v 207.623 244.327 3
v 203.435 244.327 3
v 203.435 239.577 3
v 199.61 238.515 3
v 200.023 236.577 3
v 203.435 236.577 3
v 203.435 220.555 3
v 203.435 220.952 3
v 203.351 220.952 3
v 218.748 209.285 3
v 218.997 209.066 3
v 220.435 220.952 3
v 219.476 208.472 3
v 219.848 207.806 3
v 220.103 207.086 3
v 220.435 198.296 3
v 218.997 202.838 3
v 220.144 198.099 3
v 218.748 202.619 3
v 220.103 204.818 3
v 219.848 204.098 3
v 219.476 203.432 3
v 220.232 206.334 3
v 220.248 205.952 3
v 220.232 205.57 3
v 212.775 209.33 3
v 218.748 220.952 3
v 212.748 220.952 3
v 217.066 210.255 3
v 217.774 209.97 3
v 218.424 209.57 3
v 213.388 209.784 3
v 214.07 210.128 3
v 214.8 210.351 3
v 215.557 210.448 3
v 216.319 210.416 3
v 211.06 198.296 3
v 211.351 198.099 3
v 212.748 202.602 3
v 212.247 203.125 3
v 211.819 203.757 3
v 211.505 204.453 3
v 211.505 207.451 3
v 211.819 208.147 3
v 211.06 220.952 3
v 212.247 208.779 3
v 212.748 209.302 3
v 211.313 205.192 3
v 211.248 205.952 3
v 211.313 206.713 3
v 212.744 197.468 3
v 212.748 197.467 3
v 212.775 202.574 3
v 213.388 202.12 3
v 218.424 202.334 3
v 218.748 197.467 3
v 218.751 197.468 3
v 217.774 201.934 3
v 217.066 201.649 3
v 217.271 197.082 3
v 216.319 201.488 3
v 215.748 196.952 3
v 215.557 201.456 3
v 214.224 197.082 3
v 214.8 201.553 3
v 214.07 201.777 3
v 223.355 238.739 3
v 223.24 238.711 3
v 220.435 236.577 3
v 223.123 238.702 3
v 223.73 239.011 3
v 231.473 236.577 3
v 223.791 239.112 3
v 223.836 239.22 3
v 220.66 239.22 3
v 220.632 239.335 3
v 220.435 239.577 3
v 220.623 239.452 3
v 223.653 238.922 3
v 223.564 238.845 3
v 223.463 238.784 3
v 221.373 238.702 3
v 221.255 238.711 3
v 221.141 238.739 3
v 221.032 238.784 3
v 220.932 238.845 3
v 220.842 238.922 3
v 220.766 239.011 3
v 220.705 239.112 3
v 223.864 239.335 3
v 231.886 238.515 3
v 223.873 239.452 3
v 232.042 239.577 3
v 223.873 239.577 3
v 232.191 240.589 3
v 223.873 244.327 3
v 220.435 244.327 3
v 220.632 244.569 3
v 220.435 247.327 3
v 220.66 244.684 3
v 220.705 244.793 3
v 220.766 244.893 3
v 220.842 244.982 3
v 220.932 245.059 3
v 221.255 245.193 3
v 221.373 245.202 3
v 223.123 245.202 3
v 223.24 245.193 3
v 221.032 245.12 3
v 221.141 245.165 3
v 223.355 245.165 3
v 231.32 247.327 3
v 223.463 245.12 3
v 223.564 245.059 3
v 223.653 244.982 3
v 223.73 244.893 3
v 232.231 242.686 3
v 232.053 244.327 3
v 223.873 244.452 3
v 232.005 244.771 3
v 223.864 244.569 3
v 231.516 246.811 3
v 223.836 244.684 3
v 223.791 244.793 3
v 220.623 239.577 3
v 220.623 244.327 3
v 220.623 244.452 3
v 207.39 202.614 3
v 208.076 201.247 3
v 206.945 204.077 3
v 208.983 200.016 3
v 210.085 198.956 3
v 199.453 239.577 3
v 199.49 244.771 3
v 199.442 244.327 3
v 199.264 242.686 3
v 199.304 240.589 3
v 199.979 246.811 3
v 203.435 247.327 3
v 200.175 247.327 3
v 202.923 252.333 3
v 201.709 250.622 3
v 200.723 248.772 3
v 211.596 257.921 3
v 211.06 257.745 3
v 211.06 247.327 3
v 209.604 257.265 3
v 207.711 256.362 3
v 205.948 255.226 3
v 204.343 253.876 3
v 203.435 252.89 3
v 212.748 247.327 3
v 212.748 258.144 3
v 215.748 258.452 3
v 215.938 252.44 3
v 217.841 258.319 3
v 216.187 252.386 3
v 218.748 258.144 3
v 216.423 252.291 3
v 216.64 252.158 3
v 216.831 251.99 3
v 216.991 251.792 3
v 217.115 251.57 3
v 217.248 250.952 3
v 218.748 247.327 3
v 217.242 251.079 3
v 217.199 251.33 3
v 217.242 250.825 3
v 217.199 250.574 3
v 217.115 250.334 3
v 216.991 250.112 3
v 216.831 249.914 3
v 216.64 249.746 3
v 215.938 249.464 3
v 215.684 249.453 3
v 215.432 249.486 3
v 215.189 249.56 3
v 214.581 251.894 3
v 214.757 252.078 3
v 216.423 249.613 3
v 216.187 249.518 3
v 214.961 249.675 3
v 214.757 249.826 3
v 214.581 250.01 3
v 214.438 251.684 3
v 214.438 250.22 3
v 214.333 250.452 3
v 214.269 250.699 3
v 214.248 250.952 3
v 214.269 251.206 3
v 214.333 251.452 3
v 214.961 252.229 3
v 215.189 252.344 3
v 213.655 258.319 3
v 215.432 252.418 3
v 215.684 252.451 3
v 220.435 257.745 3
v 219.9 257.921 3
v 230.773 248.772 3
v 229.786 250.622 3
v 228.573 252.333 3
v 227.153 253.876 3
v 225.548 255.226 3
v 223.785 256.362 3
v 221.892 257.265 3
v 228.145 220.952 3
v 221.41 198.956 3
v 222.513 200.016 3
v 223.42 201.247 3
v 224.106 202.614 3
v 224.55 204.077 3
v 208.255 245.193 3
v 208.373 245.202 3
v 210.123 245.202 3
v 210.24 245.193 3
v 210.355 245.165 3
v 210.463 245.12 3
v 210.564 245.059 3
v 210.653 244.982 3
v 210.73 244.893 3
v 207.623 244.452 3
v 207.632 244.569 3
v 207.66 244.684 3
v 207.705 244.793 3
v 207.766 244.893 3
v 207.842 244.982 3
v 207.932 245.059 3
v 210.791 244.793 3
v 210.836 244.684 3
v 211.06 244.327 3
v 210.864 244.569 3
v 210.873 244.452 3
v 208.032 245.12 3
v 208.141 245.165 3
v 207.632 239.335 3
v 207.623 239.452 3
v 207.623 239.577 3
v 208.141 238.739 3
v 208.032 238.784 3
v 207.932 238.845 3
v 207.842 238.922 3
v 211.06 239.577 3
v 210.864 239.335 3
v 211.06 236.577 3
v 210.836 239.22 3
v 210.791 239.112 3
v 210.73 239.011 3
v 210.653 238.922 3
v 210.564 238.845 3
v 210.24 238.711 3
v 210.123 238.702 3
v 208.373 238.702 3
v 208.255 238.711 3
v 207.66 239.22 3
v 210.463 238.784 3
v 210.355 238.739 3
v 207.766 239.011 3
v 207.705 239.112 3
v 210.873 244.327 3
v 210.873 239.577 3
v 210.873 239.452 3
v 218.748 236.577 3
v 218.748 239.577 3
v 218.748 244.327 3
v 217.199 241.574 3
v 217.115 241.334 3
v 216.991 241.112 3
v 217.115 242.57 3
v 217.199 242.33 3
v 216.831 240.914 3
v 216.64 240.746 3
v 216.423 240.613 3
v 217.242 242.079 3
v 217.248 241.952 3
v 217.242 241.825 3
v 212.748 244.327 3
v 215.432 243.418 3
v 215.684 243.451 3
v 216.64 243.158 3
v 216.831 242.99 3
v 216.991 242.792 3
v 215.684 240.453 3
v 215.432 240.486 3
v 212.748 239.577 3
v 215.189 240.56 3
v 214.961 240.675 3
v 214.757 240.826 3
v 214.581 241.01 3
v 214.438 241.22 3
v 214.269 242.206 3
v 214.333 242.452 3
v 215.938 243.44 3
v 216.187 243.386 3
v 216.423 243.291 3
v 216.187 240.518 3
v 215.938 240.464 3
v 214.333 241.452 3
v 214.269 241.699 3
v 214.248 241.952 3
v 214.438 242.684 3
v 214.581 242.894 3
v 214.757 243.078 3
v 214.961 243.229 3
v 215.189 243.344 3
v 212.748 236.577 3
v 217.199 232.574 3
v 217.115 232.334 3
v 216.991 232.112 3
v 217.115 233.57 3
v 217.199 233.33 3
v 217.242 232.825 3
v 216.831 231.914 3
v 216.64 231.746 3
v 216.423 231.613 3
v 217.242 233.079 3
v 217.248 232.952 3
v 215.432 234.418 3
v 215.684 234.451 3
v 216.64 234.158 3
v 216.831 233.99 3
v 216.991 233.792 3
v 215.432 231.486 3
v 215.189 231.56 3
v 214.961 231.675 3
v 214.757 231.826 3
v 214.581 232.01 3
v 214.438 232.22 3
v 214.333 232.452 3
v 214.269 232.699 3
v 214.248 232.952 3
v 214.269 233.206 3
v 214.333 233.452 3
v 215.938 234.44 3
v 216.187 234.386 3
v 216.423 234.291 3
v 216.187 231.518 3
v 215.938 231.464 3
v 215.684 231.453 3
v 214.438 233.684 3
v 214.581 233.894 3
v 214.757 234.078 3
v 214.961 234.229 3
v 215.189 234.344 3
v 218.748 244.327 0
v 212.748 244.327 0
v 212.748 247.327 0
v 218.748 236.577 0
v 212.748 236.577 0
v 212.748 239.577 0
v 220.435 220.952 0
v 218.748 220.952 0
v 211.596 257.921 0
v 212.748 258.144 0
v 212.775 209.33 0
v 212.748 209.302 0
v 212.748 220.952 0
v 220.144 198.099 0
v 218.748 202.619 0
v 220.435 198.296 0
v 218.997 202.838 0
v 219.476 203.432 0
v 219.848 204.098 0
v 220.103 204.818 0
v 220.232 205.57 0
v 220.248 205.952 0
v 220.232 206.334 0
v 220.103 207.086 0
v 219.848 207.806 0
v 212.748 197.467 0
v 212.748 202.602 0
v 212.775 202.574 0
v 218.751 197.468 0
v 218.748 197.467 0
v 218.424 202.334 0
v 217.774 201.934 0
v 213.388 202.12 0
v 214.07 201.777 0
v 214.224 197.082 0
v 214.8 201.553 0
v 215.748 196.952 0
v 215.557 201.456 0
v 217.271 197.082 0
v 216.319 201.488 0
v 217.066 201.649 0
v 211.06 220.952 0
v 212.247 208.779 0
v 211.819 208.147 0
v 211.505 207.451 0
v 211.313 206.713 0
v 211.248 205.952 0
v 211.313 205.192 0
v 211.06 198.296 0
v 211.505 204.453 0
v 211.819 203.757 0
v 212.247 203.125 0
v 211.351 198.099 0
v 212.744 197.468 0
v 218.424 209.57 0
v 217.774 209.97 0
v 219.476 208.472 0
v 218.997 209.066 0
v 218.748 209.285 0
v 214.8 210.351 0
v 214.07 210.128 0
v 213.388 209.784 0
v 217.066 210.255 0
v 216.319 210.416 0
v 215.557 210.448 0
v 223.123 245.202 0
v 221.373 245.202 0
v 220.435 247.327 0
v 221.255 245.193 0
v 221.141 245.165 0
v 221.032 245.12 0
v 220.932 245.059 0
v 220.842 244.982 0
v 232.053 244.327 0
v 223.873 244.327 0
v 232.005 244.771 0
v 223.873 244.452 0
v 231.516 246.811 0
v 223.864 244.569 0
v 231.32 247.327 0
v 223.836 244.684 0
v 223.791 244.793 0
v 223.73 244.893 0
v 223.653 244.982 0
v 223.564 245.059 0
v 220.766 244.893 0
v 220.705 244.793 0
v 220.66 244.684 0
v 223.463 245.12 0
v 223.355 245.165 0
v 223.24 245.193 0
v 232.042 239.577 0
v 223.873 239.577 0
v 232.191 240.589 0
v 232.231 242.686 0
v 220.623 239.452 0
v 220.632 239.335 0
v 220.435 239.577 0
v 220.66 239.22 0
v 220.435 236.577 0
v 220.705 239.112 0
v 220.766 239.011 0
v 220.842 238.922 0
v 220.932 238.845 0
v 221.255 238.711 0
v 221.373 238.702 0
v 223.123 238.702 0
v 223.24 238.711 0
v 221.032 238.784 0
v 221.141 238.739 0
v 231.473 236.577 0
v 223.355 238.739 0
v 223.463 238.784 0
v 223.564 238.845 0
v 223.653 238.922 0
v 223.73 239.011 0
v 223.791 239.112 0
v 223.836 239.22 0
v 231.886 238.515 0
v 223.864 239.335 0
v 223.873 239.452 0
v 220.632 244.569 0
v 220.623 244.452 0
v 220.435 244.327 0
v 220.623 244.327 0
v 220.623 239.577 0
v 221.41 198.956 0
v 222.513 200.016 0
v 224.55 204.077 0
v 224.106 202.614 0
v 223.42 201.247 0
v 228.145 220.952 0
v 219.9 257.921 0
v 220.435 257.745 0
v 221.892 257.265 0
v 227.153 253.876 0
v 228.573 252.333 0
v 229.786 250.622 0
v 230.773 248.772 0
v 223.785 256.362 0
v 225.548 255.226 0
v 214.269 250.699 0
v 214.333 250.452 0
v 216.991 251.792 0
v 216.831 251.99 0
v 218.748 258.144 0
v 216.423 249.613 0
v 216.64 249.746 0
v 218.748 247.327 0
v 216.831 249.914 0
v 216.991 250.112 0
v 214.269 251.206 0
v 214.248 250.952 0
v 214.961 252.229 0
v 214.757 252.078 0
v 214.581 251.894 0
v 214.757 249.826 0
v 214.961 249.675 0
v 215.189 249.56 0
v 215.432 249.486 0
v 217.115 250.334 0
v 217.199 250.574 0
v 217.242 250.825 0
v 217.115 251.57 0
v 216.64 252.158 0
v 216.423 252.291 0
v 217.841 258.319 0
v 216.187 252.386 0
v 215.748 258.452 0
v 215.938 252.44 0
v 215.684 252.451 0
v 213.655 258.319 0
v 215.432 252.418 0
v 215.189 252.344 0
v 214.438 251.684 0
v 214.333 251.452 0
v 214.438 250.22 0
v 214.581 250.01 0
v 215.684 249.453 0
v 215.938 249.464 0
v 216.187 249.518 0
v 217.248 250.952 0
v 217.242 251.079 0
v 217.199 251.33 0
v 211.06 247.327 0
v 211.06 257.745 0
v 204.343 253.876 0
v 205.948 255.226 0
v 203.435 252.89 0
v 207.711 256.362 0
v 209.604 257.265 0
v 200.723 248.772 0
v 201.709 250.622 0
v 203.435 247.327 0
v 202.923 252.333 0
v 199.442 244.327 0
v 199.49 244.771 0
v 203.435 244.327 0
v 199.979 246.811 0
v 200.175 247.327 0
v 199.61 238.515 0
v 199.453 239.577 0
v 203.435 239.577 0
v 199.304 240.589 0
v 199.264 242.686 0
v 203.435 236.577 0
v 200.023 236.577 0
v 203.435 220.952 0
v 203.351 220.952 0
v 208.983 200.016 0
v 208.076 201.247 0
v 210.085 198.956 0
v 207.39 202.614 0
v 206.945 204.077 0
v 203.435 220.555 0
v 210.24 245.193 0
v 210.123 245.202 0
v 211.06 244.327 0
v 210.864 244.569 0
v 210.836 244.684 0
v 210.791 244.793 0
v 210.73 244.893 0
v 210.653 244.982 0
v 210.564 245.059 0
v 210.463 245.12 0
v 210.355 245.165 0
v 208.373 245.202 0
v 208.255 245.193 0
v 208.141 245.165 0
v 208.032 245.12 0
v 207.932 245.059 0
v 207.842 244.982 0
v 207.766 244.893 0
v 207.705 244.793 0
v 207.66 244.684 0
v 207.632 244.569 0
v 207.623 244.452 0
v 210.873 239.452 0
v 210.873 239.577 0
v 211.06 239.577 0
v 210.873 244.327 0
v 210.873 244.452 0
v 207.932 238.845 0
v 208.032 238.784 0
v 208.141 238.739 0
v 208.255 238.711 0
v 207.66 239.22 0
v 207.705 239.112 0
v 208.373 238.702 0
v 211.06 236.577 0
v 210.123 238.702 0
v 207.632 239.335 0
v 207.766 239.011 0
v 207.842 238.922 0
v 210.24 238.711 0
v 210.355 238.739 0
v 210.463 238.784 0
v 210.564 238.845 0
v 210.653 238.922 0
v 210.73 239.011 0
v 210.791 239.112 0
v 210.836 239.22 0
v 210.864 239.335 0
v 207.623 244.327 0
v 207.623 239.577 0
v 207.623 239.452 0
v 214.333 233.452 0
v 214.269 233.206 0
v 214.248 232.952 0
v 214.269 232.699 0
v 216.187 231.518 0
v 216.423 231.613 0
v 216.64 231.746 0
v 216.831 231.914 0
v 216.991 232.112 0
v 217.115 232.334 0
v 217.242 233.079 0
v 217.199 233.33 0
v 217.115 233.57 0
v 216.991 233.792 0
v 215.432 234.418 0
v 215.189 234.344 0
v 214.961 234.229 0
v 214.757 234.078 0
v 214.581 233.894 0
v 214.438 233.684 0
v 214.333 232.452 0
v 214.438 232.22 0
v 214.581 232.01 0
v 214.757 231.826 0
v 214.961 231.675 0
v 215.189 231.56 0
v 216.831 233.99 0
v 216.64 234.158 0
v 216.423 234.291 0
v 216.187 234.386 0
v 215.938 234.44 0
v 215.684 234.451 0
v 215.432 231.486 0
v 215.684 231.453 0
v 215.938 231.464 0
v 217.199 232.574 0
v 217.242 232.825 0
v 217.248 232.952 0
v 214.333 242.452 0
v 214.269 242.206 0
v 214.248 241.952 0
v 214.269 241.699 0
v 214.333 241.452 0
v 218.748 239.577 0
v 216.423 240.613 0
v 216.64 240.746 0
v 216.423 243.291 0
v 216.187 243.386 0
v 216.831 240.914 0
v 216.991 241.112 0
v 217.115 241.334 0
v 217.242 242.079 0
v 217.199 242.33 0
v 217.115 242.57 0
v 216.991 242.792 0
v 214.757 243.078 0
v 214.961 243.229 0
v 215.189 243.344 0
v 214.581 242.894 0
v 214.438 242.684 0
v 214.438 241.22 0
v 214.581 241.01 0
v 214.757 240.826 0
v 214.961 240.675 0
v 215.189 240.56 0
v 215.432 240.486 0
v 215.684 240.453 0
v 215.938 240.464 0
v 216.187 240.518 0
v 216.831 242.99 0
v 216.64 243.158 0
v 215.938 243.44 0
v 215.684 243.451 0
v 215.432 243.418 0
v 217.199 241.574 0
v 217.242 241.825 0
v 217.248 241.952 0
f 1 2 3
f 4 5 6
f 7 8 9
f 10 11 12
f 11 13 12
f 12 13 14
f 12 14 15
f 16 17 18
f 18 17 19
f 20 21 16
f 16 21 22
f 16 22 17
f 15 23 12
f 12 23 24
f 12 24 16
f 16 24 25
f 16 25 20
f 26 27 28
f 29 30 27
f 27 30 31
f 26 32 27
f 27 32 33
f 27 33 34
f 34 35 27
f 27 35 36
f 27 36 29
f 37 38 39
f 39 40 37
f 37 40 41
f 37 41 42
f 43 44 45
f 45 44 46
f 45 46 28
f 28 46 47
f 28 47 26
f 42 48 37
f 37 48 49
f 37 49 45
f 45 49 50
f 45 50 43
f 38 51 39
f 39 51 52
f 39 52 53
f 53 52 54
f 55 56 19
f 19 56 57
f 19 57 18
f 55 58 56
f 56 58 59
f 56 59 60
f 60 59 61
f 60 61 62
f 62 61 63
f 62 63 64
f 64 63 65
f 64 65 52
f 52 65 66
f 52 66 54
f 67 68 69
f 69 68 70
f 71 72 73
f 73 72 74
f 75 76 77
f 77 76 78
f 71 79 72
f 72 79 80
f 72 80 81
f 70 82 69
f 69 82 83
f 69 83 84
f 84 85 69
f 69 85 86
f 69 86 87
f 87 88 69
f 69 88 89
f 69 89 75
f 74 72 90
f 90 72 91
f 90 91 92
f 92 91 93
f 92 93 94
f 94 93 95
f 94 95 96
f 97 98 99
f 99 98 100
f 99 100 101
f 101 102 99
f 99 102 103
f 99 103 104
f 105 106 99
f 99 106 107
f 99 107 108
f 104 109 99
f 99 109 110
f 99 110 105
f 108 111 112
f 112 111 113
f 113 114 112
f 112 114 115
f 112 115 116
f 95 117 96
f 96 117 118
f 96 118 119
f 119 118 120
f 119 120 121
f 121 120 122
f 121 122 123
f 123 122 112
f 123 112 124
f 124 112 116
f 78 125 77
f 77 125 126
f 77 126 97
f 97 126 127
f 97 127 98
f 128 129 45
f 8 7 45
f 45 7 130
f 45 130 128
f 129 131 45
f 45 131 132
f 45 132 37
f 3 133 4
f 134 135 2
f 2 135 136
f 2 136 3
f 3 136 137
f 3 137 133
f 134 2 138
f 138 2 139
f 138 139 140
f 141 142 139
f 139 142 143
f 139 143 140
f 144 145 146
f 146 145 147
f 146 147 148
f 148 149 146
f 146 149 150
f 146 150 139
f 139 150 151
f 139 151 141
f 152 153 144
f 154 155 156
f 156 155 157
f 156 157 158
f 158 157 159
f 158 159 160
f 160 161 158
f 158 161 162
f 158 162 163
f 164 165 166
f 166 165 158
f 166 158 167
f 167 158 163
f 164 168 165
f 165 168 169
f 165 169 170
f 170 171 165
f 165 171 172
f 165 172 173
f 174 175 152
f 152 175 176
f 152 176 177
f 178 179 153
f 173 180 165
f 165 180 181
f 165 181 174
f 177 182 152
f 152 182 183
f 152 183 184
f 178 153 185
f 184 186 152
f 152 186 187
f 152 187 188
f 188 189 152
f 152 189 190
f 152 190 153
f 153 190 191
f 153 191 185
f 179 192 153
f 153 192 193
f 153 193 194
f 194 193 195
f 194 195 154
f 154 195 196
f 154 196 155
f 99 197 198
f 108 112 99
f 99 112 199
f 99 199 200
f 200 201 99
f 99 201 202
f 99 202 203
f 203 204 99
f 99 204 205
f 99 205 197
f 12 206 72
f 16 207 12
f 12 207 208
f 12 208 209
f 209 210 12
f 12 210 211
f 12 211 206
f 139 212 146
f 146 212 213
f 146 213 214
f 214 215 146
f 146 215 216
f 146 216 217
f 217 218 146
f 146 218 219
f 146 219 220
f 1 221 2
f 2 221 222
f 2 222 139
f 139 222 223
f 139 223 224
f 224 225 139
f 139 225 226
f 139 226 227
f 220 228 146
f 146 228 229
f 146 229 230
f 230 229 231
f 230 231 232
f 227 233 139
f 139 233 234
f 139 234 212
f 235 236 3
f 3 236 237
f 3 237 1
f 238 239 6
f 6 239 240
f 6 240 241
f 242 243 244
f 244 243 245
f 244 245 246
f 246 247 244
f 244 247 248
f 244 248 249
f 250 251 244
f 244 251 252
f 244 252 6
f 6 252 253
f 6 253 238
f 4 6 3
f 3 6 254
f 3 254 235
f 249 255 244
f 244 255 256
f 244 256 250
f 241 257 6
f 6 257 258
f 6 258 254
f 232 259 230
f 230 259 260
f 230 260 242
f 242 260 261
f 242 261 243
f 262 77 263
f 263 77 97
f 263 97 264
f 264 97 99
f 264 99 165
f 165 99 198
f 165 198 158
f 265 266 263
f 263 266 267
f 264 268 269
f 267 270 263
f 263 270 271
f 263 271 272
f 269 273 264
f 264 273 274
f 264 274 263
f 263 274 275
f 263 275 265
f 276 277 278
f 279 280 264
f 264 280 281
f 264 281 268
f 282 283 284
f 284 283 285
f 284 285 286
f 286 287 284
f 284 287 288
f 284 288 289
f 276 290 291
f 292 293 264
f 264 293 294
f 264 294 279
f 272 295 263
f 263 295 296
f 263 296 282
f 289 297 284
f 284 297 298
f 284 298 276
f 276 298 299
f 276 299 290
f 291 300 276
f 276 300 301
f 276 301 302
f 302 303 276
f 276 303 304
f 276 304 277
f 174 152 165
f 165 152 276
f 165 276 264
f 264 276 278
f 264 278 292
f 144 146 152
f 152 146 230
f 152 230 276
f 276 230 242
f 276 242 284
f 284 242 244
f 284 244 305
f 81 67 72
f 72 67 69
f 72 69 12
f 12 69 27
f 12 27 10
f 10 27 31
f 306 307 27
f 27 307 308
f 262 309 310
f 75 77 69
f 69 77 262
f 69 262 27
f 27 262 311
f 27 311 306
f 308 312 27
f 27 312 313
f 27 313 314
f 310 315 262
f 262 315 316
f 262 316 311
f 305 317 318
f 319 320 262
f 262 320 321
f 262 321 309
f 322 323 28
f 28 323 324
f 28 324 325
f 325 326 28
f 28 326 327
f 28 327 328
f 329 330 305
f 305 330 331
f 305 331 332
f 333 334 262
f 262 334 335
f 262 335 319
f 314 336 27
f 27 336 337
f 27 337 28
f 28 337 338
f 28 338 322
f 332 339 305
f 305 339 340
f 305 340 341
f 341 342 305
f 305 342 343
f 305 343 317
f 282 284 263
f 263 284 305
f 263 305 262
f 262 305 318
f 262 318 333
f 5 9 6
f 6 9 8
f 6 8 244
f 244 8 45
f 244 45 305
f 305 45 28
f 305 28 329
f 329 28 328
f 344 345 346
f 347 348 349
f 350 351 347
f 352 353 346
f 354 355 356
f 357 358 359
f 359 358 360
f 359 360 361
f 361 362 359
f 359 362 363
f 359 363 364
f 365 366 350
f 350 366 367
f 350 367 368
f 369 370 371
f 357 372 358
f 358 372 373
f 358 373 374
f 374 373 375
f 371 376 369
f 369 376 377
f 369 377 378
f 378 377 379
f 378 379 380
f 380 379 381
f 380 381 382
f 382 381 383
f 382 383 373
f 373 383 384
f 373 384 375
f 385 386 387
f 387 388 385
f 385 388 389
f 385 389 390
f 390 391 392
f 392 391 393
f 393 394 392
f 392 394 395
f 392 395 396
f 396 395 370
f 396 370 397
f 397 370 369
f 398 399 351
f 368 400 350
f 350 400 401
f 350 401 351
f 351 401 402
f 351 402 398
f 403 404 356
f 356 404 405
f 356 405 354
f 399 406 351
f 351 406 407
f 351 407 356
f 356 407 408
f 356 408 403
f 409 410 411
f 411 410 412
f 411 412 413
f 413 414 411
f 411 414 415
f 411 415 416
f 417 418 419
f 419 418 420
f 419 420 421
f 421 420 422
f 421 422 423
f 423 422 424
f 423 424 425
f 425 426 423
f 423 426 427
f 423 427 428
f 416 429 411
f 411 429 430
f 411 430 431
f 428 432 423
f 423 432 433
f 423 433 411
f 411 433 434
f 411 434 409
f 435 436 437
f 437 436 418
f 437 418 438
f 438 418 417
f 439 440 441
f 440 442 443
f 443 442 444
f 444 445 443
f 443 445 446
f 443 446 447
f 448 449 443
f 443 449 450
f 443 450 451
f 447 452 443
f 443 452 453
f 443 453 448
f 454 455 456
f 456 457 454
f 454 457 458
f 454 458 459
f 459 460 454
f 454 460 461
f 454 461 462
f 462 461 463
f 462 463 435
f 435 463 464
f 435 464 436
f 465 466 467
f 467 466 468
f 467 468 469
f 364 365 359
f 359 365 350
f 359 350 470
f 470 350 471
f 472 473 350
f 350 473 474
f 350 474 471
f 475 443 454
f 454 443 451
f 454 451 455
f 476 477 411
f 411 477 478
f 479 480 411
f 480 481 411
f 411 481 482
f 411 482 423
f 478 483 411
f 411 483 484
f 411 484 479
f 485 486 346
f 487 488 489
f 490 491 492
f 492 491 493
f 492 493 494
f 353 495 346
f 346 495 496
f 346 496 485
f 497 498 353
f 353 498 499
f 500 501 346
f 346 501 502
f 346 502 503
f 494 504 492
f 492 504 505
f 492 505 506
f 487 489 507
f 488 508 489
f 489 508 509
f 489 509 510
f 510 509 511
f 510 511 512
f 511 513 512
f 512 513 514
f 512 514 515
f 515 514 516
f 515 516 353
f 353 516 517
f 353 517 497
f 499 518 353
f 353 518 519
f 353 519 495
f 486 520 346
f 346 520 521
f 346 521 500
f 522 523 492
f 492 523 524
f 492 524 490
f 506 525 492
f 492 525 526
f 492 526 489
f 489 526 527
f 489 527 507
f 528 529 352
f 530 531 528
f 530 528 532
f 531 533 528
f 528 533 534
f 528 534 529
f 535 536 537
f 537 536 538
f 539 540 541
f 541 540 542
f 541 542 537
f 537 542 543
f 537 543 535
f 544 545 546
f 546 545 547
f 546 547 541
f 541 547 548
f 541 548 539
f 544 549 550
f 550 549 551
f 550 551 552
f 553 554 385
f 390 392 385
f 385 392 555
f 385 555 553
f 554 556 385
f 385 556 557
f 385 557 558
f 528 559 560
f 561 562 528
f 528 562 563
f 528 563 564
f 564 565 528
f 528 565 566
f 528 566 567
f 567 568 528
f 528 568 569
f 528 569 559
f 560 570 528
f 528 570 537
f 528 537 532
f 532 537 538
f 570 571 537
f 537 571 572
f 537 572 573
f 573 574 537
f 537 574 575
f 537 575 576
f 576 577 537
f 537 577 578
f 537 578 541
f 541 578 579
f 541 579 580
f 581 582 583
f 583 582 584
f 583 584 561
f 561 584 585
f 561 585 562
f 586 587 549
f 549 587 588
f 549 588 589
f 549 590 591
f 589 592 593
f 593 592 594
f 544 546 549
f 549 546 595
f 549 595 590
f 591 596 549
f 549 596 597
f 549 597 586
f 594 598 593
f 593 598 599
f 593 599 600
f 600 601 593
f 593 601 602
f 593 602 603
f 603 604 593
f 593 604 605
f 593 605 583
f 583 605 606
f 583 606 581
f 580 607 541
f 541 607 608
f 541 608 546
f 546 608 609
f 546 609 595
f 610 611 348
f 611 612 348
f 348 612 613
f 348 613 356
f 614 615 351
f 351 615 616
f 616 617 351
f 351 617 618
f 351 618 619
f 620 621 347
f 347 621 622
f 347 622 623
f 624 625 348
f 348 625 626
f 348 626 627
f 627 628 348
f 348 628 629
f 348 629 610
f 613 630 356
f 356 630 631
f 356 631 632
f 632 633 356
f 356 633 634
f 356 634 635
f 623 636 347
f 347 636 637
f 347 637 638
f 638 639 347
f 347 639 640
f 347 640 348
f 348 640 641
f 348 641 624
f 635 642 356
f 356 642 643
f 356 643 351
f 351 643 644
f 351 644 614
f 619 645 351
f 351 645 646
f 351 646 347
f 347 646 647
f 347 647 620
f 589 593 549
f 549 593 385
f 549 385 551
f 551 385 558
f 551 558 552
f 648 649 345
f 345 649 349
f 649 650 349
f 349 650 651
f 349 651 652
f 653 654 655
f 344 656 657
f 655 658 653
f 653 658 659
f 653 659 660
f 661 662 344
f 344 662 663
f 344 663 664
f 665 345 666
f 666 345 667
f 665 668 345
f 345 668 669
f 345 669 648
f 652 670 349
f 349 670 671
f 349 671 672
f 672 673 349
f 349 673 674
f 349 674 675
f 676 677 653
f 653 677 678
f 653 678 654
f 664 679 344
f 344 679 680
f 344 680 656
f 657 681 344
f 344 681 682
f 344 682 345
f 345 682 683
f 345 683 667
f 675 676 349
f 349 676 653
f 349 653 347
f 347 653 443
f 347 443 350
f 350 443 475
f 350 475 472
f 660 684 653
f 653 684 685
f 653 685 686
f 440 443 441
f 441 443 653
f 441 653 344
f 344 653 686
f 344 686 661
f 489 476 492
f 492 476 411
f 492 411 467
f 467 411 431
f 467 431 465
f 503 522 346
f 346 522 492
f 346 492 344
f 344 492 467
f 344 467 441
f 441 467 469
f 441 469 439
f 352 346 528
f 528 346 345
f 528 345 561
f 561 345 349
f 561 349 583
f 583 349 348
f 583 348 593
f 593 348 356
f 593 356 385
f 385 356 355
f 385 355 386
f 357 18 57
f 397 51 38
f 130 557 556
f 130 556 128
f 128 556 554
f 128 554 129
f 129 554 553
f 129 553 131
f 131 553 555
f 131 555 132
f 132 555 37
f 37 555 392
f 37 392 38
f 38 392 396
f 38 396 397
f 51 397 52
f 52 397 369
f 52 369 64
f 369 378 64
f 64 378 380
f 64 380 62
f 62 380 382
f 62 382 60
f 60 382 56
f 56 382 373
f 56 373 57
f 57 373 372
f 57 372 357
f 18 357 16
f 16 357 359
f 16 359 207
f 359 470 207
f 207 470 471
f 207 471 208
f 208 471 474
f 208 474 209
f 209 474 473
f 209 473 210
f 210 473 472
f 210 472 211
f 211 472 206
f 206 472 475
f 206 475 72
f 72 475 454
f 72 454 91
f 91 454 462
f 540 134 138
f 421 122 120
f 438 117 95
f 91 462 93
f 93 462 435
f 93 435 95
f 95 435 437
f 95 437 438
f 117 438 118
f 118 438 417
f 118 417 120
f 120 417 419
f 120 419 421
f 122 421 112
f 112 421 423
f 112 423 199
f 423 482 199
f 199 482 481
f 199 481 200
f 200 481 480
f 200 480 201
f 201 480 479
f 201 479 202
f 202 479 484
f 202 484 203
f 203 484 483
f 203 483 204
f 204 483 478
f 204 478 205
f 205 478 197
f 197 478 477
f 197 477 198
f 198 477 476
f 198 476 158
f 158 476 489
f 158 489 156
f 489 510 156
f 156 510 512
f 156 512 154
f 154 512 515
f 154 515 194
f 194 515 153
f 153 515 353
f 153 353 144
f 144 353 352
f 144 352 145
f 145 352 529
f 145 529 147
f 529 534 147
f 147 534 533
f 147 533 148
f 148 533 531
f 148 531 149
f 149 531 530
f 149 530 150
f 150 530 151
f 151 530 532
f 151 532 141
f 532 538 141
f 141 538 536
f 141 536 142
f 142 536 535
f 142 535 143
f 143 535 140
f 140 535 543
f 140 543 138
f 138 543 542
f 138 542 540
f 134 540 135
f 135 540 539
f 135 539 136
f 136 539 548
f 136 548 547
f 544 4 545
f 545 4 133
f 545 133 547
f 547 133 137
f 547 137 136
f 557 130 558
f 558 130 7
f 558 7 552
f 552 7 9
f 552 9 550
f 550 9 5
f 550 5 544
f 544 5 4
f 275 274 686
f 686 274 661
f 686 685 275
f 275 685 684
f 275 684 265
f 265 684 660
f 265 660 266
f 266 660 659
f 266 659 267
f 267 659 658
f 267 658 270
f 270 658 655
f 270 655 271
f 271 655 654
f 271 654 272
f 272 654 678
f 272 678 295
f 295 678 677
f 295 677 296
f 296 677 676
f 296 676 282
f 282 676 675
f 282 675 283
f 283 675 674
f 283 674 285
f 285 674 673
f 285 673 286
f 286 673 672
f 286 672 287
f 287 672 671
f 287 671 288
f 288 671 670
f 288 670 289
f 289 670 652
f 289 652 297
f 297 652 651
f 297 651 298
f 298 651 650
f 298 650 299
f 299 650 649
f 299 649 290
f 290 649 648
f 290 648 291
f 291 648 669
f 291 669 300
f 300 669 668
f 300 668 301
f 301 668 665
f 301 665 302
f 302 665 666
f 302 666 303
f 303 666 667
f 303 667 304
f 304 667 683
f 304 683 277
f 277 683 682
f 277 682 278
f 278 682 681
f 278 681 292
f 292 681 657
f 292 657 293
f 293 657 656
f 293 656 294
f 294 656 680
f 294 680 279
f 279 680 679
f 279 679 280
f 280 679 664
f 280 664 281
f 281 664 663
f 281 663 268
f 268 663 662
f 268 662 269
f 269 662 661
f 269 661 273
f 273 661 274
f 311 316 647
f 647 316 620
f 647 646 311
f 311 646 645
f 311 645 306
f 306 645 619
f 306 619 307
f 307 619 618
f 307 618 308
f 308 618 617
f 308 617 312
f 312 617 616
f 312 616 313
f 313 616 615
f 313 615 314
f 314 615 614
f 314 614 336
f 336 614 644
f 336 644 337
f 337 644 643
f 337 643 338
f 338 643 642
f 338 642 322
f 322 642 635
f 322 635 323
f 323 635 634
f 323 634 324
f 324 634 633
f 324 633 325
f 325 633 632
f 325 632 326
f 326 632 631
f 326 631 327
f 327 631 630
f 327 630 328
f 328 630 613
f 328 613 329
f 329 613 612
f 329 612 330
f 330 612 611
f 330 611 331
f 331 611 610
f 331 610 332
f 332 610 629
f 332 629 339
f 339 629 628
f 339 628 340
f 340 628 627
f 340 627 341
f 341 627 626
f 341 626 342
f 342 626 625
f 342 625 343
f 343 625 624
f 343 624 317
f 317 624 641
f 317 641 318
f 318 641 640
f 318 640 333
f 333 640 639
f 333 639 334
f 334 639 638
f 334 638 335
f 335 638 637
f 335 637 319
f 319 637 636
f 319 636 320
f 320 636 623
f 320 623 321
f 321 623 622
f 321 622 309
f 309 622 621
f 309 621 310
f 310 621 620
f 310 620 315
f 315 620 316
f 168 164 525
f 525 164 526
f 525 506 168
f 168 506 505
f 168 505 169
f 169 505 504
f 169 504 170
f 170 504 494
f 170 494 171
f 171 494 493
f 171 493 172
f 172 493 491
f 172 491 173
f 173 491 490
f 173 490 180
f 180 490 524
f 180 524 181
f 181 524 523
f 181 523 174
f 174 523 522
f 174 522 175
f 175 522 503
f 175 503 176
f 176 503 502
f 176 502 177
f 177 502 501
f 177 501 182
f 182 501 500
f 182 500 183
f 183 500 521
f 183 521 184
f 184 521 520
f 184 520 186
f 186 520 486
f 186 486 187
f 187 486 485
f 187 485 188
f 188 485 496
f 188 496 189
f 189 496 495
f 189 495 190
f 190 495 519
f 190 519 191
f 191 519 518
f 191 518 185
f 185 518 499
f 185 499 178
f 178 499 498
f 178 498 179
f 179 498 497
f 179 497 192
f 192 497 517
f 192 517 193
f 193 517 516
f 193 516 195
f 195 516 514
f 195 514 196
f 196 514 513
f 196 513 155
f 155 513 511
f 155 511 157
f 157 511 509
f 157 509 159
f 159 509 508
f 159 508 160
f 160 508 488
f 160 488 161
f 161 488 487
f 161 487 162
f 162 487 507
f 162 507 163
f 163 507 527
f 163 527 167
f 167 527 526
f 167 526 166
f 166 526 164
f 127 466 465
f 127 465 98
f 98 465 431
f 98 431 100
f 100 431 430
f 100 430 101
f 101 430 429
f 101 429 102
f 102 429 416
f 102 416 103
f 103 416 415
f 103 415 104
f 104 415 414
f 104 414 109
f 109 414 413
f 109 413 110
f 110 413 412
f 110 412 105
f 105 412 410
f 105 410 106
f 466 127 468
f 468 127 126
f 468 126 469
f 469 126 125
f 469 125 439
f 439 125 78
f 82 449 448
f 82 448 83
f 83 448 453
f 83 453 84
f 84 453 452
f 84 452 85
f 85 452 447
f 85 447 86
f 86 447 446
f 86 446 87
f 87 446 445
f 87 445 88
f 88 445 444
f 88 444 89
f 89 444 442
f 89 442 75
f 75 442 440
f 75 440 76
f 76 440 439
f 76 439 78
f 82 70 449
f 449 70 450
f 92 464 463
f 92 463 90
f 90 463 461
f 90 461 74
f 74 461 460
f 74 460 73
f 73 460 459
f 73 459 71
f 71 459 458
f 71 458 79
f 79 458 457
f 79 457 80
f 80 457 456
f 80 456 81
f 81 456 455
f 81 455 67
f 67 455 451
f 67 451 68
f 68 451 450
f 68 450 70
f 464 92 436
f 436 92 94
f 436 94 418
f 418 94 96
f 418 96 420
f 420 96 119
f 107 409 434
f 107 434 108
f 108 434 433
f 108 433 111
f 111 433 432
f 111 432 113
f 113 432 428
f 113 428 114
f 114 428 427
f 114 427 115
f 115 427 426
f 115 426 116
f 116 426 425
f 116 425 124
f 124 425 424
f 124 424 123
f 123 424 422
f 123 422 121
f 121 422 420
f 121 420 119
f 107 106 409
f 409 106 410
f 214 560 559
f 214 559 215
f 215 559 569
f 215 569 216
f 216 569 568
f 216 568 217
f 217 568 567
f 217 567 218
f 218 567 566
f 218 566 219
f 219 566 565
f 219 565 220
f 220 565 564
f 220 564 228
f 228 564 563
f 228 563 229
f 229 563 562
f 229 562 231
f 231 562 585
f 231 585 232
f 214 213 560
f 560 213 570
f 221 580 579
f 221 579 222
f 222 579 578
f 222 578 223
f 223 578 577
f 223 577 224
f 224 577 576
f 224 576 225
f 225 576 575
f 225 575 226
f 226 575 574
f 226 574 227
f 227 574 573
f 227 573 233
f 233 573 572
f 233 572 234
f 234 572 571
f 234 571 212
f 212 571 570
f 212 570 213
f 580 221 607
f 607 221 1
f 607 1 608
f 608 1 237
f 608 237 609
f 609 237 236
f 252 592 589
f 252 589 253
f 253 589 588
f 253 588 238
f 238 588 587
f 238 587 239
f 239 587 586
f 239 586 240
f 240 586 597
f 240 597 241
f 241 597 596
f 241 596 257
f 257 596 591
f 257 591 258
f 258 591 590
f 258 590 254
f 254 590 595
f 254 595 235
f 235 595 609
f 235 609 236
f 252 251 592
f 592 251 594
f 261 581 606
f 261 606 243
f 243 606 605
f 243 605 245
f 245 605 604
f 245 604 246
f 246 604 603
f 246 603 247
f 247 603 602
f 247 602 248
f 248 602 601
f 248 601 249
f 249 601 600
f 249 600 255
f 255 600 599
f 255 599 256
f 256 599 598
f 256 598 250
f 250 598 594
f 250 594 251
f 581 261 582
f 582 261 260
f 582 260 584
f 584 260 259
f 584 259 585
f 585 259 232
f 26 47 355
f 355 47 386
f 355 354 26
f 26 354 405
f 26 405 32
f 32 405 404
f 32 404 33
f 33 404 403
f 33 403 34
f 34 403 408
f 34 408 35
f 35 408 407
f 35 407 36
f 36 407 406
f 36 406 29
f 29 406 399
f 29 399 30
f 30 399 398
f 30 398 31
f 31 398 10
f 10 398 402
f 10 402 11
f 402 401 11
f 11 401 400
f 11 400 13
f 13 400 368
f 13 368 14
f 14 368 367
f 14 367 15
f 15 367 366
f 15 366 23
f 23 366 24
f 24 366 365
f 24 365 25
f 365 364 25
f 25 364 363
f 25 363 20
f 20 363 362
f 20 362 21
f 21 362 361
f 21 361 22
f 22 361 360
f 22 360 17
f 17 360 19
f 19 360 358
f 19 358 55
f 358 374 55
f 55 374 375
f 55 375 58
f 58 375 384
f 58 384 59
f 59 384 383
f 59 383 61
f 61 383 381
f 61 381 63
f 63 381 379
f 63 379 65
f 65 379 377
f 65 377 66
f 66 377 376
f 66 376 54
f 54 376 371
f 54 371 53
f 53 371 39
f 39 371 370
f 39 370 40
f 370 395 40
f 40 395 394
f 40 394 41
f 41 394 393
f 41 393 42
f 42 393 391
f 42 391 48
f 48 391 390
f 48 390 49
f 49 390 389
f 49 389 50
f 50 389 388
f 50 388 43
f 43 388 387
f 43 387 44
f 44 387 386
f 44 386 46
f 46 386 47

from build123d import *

# Parameters (mm, degrees)
MODEL_R                 = 1.5
MODEL_R_2               = 4.5
SALIENTE_EXTRUIR1_DEPTH = 3


with BuildPart() as part:
    # Model → Saliente-Extruir1 (new body)
    with BuildSketch(Plane.XY):
        with BuildLine():
            Line((206.945286968, 204.077019993), (199.609852846, 238.514519993))
            ThreePointArc((199.609852846, 238.514519993), (215.747807914, 258.452019993), (231.885762981, 238.514519993))
            Line((231.885762981, 238.514519993), (224.550328859, 204.077019993))
            ThreePointArc((224.550328859, 204.077019993), (215.747807914, 196.952019993), (206.945286968, 204.077019993))
        make_face()
        with Locations((215.747807914, 241.952019993)):
            Circle(MODEL_R, mode=Mode.SUBTRACT)
        with Locations((215.747807914, 232.952019993)):
            Circle(MODEL_R, mode=Mode.SUBTRACT)
        with Locations((215.747807914, 250.952019993)):
            Circle(MODEL_R, mode=Mode.SUBTRACT)
        with Locations((215.747807914, 205.952019993)):
            Circle(MODEL_R_2, mode=Mode.SUBTRACT)
        with BuildLine():
            Line((223.122807913, 245.202019993), (221.372807913, 245.202019993))
            ThreePointArc((221.372807913, 245.202019993), (220.842477828, 244.982350079), (220.622807913, 244.452019993))
            Line((220.622807913, 244.452019993), (220.622807913, 239.452019993))
            ThreePointArc((220.622807913, 239.452019993), (220.842477828, 238.921689907), (221.372807913, 238.702019993))
            Line((221.372807913, 238.702019993), (223.122807913, 238.702019993))
            ThreePointArc((223.122807913, 238.702019993), (223.653137999, 238.921689907), (223.872807913, 239.452019993))
            Line((223.872807913, 239.452019993), (223.872807913, 244.452019993))
            ThreePointArc((223.872807913, 244.452019993), (223.653137999, 244.982350079), (223.122807913, 245.202019993))
        make_face(mode=Mode.SUBTRACT)
        with BuildLine():
            Line((208.372807913, 245.202019993), (210.122807913, 245.202019993))
            ThreePointArc((210.122807913, 245.202019993), (210.653137999, 244.982350079), (210.872807913, 244.452019993))
            Line((210.872807913, 244.452019993), (210.872807913, 239.452019993))
            ThreePointArc((210.872807913, 239.452019993), (210.653137999, 238.921689907), (210.122807913, 238.702019993))
            Line((210.122807913, 238.702019993), (208.372807913, 238.702019993))
            ThreePointArc((208.372807913, 238.702019993), (207.842477828, 238.921689907), (207.622807913, 239.452019993))
            Line((207.622807913, 239.452019993), (207.622807913, 244.452019993))
            ThreePointArc((207.622807913, 244.452019993), (207.842477828, 244.982350079), (208.372807913, 245.202019993))
        make_face(mode=Mode.SUBTRACT)
    extrude(amount=SALIENTE_EXTRUIR1_DEPTH)


solid = part.part
